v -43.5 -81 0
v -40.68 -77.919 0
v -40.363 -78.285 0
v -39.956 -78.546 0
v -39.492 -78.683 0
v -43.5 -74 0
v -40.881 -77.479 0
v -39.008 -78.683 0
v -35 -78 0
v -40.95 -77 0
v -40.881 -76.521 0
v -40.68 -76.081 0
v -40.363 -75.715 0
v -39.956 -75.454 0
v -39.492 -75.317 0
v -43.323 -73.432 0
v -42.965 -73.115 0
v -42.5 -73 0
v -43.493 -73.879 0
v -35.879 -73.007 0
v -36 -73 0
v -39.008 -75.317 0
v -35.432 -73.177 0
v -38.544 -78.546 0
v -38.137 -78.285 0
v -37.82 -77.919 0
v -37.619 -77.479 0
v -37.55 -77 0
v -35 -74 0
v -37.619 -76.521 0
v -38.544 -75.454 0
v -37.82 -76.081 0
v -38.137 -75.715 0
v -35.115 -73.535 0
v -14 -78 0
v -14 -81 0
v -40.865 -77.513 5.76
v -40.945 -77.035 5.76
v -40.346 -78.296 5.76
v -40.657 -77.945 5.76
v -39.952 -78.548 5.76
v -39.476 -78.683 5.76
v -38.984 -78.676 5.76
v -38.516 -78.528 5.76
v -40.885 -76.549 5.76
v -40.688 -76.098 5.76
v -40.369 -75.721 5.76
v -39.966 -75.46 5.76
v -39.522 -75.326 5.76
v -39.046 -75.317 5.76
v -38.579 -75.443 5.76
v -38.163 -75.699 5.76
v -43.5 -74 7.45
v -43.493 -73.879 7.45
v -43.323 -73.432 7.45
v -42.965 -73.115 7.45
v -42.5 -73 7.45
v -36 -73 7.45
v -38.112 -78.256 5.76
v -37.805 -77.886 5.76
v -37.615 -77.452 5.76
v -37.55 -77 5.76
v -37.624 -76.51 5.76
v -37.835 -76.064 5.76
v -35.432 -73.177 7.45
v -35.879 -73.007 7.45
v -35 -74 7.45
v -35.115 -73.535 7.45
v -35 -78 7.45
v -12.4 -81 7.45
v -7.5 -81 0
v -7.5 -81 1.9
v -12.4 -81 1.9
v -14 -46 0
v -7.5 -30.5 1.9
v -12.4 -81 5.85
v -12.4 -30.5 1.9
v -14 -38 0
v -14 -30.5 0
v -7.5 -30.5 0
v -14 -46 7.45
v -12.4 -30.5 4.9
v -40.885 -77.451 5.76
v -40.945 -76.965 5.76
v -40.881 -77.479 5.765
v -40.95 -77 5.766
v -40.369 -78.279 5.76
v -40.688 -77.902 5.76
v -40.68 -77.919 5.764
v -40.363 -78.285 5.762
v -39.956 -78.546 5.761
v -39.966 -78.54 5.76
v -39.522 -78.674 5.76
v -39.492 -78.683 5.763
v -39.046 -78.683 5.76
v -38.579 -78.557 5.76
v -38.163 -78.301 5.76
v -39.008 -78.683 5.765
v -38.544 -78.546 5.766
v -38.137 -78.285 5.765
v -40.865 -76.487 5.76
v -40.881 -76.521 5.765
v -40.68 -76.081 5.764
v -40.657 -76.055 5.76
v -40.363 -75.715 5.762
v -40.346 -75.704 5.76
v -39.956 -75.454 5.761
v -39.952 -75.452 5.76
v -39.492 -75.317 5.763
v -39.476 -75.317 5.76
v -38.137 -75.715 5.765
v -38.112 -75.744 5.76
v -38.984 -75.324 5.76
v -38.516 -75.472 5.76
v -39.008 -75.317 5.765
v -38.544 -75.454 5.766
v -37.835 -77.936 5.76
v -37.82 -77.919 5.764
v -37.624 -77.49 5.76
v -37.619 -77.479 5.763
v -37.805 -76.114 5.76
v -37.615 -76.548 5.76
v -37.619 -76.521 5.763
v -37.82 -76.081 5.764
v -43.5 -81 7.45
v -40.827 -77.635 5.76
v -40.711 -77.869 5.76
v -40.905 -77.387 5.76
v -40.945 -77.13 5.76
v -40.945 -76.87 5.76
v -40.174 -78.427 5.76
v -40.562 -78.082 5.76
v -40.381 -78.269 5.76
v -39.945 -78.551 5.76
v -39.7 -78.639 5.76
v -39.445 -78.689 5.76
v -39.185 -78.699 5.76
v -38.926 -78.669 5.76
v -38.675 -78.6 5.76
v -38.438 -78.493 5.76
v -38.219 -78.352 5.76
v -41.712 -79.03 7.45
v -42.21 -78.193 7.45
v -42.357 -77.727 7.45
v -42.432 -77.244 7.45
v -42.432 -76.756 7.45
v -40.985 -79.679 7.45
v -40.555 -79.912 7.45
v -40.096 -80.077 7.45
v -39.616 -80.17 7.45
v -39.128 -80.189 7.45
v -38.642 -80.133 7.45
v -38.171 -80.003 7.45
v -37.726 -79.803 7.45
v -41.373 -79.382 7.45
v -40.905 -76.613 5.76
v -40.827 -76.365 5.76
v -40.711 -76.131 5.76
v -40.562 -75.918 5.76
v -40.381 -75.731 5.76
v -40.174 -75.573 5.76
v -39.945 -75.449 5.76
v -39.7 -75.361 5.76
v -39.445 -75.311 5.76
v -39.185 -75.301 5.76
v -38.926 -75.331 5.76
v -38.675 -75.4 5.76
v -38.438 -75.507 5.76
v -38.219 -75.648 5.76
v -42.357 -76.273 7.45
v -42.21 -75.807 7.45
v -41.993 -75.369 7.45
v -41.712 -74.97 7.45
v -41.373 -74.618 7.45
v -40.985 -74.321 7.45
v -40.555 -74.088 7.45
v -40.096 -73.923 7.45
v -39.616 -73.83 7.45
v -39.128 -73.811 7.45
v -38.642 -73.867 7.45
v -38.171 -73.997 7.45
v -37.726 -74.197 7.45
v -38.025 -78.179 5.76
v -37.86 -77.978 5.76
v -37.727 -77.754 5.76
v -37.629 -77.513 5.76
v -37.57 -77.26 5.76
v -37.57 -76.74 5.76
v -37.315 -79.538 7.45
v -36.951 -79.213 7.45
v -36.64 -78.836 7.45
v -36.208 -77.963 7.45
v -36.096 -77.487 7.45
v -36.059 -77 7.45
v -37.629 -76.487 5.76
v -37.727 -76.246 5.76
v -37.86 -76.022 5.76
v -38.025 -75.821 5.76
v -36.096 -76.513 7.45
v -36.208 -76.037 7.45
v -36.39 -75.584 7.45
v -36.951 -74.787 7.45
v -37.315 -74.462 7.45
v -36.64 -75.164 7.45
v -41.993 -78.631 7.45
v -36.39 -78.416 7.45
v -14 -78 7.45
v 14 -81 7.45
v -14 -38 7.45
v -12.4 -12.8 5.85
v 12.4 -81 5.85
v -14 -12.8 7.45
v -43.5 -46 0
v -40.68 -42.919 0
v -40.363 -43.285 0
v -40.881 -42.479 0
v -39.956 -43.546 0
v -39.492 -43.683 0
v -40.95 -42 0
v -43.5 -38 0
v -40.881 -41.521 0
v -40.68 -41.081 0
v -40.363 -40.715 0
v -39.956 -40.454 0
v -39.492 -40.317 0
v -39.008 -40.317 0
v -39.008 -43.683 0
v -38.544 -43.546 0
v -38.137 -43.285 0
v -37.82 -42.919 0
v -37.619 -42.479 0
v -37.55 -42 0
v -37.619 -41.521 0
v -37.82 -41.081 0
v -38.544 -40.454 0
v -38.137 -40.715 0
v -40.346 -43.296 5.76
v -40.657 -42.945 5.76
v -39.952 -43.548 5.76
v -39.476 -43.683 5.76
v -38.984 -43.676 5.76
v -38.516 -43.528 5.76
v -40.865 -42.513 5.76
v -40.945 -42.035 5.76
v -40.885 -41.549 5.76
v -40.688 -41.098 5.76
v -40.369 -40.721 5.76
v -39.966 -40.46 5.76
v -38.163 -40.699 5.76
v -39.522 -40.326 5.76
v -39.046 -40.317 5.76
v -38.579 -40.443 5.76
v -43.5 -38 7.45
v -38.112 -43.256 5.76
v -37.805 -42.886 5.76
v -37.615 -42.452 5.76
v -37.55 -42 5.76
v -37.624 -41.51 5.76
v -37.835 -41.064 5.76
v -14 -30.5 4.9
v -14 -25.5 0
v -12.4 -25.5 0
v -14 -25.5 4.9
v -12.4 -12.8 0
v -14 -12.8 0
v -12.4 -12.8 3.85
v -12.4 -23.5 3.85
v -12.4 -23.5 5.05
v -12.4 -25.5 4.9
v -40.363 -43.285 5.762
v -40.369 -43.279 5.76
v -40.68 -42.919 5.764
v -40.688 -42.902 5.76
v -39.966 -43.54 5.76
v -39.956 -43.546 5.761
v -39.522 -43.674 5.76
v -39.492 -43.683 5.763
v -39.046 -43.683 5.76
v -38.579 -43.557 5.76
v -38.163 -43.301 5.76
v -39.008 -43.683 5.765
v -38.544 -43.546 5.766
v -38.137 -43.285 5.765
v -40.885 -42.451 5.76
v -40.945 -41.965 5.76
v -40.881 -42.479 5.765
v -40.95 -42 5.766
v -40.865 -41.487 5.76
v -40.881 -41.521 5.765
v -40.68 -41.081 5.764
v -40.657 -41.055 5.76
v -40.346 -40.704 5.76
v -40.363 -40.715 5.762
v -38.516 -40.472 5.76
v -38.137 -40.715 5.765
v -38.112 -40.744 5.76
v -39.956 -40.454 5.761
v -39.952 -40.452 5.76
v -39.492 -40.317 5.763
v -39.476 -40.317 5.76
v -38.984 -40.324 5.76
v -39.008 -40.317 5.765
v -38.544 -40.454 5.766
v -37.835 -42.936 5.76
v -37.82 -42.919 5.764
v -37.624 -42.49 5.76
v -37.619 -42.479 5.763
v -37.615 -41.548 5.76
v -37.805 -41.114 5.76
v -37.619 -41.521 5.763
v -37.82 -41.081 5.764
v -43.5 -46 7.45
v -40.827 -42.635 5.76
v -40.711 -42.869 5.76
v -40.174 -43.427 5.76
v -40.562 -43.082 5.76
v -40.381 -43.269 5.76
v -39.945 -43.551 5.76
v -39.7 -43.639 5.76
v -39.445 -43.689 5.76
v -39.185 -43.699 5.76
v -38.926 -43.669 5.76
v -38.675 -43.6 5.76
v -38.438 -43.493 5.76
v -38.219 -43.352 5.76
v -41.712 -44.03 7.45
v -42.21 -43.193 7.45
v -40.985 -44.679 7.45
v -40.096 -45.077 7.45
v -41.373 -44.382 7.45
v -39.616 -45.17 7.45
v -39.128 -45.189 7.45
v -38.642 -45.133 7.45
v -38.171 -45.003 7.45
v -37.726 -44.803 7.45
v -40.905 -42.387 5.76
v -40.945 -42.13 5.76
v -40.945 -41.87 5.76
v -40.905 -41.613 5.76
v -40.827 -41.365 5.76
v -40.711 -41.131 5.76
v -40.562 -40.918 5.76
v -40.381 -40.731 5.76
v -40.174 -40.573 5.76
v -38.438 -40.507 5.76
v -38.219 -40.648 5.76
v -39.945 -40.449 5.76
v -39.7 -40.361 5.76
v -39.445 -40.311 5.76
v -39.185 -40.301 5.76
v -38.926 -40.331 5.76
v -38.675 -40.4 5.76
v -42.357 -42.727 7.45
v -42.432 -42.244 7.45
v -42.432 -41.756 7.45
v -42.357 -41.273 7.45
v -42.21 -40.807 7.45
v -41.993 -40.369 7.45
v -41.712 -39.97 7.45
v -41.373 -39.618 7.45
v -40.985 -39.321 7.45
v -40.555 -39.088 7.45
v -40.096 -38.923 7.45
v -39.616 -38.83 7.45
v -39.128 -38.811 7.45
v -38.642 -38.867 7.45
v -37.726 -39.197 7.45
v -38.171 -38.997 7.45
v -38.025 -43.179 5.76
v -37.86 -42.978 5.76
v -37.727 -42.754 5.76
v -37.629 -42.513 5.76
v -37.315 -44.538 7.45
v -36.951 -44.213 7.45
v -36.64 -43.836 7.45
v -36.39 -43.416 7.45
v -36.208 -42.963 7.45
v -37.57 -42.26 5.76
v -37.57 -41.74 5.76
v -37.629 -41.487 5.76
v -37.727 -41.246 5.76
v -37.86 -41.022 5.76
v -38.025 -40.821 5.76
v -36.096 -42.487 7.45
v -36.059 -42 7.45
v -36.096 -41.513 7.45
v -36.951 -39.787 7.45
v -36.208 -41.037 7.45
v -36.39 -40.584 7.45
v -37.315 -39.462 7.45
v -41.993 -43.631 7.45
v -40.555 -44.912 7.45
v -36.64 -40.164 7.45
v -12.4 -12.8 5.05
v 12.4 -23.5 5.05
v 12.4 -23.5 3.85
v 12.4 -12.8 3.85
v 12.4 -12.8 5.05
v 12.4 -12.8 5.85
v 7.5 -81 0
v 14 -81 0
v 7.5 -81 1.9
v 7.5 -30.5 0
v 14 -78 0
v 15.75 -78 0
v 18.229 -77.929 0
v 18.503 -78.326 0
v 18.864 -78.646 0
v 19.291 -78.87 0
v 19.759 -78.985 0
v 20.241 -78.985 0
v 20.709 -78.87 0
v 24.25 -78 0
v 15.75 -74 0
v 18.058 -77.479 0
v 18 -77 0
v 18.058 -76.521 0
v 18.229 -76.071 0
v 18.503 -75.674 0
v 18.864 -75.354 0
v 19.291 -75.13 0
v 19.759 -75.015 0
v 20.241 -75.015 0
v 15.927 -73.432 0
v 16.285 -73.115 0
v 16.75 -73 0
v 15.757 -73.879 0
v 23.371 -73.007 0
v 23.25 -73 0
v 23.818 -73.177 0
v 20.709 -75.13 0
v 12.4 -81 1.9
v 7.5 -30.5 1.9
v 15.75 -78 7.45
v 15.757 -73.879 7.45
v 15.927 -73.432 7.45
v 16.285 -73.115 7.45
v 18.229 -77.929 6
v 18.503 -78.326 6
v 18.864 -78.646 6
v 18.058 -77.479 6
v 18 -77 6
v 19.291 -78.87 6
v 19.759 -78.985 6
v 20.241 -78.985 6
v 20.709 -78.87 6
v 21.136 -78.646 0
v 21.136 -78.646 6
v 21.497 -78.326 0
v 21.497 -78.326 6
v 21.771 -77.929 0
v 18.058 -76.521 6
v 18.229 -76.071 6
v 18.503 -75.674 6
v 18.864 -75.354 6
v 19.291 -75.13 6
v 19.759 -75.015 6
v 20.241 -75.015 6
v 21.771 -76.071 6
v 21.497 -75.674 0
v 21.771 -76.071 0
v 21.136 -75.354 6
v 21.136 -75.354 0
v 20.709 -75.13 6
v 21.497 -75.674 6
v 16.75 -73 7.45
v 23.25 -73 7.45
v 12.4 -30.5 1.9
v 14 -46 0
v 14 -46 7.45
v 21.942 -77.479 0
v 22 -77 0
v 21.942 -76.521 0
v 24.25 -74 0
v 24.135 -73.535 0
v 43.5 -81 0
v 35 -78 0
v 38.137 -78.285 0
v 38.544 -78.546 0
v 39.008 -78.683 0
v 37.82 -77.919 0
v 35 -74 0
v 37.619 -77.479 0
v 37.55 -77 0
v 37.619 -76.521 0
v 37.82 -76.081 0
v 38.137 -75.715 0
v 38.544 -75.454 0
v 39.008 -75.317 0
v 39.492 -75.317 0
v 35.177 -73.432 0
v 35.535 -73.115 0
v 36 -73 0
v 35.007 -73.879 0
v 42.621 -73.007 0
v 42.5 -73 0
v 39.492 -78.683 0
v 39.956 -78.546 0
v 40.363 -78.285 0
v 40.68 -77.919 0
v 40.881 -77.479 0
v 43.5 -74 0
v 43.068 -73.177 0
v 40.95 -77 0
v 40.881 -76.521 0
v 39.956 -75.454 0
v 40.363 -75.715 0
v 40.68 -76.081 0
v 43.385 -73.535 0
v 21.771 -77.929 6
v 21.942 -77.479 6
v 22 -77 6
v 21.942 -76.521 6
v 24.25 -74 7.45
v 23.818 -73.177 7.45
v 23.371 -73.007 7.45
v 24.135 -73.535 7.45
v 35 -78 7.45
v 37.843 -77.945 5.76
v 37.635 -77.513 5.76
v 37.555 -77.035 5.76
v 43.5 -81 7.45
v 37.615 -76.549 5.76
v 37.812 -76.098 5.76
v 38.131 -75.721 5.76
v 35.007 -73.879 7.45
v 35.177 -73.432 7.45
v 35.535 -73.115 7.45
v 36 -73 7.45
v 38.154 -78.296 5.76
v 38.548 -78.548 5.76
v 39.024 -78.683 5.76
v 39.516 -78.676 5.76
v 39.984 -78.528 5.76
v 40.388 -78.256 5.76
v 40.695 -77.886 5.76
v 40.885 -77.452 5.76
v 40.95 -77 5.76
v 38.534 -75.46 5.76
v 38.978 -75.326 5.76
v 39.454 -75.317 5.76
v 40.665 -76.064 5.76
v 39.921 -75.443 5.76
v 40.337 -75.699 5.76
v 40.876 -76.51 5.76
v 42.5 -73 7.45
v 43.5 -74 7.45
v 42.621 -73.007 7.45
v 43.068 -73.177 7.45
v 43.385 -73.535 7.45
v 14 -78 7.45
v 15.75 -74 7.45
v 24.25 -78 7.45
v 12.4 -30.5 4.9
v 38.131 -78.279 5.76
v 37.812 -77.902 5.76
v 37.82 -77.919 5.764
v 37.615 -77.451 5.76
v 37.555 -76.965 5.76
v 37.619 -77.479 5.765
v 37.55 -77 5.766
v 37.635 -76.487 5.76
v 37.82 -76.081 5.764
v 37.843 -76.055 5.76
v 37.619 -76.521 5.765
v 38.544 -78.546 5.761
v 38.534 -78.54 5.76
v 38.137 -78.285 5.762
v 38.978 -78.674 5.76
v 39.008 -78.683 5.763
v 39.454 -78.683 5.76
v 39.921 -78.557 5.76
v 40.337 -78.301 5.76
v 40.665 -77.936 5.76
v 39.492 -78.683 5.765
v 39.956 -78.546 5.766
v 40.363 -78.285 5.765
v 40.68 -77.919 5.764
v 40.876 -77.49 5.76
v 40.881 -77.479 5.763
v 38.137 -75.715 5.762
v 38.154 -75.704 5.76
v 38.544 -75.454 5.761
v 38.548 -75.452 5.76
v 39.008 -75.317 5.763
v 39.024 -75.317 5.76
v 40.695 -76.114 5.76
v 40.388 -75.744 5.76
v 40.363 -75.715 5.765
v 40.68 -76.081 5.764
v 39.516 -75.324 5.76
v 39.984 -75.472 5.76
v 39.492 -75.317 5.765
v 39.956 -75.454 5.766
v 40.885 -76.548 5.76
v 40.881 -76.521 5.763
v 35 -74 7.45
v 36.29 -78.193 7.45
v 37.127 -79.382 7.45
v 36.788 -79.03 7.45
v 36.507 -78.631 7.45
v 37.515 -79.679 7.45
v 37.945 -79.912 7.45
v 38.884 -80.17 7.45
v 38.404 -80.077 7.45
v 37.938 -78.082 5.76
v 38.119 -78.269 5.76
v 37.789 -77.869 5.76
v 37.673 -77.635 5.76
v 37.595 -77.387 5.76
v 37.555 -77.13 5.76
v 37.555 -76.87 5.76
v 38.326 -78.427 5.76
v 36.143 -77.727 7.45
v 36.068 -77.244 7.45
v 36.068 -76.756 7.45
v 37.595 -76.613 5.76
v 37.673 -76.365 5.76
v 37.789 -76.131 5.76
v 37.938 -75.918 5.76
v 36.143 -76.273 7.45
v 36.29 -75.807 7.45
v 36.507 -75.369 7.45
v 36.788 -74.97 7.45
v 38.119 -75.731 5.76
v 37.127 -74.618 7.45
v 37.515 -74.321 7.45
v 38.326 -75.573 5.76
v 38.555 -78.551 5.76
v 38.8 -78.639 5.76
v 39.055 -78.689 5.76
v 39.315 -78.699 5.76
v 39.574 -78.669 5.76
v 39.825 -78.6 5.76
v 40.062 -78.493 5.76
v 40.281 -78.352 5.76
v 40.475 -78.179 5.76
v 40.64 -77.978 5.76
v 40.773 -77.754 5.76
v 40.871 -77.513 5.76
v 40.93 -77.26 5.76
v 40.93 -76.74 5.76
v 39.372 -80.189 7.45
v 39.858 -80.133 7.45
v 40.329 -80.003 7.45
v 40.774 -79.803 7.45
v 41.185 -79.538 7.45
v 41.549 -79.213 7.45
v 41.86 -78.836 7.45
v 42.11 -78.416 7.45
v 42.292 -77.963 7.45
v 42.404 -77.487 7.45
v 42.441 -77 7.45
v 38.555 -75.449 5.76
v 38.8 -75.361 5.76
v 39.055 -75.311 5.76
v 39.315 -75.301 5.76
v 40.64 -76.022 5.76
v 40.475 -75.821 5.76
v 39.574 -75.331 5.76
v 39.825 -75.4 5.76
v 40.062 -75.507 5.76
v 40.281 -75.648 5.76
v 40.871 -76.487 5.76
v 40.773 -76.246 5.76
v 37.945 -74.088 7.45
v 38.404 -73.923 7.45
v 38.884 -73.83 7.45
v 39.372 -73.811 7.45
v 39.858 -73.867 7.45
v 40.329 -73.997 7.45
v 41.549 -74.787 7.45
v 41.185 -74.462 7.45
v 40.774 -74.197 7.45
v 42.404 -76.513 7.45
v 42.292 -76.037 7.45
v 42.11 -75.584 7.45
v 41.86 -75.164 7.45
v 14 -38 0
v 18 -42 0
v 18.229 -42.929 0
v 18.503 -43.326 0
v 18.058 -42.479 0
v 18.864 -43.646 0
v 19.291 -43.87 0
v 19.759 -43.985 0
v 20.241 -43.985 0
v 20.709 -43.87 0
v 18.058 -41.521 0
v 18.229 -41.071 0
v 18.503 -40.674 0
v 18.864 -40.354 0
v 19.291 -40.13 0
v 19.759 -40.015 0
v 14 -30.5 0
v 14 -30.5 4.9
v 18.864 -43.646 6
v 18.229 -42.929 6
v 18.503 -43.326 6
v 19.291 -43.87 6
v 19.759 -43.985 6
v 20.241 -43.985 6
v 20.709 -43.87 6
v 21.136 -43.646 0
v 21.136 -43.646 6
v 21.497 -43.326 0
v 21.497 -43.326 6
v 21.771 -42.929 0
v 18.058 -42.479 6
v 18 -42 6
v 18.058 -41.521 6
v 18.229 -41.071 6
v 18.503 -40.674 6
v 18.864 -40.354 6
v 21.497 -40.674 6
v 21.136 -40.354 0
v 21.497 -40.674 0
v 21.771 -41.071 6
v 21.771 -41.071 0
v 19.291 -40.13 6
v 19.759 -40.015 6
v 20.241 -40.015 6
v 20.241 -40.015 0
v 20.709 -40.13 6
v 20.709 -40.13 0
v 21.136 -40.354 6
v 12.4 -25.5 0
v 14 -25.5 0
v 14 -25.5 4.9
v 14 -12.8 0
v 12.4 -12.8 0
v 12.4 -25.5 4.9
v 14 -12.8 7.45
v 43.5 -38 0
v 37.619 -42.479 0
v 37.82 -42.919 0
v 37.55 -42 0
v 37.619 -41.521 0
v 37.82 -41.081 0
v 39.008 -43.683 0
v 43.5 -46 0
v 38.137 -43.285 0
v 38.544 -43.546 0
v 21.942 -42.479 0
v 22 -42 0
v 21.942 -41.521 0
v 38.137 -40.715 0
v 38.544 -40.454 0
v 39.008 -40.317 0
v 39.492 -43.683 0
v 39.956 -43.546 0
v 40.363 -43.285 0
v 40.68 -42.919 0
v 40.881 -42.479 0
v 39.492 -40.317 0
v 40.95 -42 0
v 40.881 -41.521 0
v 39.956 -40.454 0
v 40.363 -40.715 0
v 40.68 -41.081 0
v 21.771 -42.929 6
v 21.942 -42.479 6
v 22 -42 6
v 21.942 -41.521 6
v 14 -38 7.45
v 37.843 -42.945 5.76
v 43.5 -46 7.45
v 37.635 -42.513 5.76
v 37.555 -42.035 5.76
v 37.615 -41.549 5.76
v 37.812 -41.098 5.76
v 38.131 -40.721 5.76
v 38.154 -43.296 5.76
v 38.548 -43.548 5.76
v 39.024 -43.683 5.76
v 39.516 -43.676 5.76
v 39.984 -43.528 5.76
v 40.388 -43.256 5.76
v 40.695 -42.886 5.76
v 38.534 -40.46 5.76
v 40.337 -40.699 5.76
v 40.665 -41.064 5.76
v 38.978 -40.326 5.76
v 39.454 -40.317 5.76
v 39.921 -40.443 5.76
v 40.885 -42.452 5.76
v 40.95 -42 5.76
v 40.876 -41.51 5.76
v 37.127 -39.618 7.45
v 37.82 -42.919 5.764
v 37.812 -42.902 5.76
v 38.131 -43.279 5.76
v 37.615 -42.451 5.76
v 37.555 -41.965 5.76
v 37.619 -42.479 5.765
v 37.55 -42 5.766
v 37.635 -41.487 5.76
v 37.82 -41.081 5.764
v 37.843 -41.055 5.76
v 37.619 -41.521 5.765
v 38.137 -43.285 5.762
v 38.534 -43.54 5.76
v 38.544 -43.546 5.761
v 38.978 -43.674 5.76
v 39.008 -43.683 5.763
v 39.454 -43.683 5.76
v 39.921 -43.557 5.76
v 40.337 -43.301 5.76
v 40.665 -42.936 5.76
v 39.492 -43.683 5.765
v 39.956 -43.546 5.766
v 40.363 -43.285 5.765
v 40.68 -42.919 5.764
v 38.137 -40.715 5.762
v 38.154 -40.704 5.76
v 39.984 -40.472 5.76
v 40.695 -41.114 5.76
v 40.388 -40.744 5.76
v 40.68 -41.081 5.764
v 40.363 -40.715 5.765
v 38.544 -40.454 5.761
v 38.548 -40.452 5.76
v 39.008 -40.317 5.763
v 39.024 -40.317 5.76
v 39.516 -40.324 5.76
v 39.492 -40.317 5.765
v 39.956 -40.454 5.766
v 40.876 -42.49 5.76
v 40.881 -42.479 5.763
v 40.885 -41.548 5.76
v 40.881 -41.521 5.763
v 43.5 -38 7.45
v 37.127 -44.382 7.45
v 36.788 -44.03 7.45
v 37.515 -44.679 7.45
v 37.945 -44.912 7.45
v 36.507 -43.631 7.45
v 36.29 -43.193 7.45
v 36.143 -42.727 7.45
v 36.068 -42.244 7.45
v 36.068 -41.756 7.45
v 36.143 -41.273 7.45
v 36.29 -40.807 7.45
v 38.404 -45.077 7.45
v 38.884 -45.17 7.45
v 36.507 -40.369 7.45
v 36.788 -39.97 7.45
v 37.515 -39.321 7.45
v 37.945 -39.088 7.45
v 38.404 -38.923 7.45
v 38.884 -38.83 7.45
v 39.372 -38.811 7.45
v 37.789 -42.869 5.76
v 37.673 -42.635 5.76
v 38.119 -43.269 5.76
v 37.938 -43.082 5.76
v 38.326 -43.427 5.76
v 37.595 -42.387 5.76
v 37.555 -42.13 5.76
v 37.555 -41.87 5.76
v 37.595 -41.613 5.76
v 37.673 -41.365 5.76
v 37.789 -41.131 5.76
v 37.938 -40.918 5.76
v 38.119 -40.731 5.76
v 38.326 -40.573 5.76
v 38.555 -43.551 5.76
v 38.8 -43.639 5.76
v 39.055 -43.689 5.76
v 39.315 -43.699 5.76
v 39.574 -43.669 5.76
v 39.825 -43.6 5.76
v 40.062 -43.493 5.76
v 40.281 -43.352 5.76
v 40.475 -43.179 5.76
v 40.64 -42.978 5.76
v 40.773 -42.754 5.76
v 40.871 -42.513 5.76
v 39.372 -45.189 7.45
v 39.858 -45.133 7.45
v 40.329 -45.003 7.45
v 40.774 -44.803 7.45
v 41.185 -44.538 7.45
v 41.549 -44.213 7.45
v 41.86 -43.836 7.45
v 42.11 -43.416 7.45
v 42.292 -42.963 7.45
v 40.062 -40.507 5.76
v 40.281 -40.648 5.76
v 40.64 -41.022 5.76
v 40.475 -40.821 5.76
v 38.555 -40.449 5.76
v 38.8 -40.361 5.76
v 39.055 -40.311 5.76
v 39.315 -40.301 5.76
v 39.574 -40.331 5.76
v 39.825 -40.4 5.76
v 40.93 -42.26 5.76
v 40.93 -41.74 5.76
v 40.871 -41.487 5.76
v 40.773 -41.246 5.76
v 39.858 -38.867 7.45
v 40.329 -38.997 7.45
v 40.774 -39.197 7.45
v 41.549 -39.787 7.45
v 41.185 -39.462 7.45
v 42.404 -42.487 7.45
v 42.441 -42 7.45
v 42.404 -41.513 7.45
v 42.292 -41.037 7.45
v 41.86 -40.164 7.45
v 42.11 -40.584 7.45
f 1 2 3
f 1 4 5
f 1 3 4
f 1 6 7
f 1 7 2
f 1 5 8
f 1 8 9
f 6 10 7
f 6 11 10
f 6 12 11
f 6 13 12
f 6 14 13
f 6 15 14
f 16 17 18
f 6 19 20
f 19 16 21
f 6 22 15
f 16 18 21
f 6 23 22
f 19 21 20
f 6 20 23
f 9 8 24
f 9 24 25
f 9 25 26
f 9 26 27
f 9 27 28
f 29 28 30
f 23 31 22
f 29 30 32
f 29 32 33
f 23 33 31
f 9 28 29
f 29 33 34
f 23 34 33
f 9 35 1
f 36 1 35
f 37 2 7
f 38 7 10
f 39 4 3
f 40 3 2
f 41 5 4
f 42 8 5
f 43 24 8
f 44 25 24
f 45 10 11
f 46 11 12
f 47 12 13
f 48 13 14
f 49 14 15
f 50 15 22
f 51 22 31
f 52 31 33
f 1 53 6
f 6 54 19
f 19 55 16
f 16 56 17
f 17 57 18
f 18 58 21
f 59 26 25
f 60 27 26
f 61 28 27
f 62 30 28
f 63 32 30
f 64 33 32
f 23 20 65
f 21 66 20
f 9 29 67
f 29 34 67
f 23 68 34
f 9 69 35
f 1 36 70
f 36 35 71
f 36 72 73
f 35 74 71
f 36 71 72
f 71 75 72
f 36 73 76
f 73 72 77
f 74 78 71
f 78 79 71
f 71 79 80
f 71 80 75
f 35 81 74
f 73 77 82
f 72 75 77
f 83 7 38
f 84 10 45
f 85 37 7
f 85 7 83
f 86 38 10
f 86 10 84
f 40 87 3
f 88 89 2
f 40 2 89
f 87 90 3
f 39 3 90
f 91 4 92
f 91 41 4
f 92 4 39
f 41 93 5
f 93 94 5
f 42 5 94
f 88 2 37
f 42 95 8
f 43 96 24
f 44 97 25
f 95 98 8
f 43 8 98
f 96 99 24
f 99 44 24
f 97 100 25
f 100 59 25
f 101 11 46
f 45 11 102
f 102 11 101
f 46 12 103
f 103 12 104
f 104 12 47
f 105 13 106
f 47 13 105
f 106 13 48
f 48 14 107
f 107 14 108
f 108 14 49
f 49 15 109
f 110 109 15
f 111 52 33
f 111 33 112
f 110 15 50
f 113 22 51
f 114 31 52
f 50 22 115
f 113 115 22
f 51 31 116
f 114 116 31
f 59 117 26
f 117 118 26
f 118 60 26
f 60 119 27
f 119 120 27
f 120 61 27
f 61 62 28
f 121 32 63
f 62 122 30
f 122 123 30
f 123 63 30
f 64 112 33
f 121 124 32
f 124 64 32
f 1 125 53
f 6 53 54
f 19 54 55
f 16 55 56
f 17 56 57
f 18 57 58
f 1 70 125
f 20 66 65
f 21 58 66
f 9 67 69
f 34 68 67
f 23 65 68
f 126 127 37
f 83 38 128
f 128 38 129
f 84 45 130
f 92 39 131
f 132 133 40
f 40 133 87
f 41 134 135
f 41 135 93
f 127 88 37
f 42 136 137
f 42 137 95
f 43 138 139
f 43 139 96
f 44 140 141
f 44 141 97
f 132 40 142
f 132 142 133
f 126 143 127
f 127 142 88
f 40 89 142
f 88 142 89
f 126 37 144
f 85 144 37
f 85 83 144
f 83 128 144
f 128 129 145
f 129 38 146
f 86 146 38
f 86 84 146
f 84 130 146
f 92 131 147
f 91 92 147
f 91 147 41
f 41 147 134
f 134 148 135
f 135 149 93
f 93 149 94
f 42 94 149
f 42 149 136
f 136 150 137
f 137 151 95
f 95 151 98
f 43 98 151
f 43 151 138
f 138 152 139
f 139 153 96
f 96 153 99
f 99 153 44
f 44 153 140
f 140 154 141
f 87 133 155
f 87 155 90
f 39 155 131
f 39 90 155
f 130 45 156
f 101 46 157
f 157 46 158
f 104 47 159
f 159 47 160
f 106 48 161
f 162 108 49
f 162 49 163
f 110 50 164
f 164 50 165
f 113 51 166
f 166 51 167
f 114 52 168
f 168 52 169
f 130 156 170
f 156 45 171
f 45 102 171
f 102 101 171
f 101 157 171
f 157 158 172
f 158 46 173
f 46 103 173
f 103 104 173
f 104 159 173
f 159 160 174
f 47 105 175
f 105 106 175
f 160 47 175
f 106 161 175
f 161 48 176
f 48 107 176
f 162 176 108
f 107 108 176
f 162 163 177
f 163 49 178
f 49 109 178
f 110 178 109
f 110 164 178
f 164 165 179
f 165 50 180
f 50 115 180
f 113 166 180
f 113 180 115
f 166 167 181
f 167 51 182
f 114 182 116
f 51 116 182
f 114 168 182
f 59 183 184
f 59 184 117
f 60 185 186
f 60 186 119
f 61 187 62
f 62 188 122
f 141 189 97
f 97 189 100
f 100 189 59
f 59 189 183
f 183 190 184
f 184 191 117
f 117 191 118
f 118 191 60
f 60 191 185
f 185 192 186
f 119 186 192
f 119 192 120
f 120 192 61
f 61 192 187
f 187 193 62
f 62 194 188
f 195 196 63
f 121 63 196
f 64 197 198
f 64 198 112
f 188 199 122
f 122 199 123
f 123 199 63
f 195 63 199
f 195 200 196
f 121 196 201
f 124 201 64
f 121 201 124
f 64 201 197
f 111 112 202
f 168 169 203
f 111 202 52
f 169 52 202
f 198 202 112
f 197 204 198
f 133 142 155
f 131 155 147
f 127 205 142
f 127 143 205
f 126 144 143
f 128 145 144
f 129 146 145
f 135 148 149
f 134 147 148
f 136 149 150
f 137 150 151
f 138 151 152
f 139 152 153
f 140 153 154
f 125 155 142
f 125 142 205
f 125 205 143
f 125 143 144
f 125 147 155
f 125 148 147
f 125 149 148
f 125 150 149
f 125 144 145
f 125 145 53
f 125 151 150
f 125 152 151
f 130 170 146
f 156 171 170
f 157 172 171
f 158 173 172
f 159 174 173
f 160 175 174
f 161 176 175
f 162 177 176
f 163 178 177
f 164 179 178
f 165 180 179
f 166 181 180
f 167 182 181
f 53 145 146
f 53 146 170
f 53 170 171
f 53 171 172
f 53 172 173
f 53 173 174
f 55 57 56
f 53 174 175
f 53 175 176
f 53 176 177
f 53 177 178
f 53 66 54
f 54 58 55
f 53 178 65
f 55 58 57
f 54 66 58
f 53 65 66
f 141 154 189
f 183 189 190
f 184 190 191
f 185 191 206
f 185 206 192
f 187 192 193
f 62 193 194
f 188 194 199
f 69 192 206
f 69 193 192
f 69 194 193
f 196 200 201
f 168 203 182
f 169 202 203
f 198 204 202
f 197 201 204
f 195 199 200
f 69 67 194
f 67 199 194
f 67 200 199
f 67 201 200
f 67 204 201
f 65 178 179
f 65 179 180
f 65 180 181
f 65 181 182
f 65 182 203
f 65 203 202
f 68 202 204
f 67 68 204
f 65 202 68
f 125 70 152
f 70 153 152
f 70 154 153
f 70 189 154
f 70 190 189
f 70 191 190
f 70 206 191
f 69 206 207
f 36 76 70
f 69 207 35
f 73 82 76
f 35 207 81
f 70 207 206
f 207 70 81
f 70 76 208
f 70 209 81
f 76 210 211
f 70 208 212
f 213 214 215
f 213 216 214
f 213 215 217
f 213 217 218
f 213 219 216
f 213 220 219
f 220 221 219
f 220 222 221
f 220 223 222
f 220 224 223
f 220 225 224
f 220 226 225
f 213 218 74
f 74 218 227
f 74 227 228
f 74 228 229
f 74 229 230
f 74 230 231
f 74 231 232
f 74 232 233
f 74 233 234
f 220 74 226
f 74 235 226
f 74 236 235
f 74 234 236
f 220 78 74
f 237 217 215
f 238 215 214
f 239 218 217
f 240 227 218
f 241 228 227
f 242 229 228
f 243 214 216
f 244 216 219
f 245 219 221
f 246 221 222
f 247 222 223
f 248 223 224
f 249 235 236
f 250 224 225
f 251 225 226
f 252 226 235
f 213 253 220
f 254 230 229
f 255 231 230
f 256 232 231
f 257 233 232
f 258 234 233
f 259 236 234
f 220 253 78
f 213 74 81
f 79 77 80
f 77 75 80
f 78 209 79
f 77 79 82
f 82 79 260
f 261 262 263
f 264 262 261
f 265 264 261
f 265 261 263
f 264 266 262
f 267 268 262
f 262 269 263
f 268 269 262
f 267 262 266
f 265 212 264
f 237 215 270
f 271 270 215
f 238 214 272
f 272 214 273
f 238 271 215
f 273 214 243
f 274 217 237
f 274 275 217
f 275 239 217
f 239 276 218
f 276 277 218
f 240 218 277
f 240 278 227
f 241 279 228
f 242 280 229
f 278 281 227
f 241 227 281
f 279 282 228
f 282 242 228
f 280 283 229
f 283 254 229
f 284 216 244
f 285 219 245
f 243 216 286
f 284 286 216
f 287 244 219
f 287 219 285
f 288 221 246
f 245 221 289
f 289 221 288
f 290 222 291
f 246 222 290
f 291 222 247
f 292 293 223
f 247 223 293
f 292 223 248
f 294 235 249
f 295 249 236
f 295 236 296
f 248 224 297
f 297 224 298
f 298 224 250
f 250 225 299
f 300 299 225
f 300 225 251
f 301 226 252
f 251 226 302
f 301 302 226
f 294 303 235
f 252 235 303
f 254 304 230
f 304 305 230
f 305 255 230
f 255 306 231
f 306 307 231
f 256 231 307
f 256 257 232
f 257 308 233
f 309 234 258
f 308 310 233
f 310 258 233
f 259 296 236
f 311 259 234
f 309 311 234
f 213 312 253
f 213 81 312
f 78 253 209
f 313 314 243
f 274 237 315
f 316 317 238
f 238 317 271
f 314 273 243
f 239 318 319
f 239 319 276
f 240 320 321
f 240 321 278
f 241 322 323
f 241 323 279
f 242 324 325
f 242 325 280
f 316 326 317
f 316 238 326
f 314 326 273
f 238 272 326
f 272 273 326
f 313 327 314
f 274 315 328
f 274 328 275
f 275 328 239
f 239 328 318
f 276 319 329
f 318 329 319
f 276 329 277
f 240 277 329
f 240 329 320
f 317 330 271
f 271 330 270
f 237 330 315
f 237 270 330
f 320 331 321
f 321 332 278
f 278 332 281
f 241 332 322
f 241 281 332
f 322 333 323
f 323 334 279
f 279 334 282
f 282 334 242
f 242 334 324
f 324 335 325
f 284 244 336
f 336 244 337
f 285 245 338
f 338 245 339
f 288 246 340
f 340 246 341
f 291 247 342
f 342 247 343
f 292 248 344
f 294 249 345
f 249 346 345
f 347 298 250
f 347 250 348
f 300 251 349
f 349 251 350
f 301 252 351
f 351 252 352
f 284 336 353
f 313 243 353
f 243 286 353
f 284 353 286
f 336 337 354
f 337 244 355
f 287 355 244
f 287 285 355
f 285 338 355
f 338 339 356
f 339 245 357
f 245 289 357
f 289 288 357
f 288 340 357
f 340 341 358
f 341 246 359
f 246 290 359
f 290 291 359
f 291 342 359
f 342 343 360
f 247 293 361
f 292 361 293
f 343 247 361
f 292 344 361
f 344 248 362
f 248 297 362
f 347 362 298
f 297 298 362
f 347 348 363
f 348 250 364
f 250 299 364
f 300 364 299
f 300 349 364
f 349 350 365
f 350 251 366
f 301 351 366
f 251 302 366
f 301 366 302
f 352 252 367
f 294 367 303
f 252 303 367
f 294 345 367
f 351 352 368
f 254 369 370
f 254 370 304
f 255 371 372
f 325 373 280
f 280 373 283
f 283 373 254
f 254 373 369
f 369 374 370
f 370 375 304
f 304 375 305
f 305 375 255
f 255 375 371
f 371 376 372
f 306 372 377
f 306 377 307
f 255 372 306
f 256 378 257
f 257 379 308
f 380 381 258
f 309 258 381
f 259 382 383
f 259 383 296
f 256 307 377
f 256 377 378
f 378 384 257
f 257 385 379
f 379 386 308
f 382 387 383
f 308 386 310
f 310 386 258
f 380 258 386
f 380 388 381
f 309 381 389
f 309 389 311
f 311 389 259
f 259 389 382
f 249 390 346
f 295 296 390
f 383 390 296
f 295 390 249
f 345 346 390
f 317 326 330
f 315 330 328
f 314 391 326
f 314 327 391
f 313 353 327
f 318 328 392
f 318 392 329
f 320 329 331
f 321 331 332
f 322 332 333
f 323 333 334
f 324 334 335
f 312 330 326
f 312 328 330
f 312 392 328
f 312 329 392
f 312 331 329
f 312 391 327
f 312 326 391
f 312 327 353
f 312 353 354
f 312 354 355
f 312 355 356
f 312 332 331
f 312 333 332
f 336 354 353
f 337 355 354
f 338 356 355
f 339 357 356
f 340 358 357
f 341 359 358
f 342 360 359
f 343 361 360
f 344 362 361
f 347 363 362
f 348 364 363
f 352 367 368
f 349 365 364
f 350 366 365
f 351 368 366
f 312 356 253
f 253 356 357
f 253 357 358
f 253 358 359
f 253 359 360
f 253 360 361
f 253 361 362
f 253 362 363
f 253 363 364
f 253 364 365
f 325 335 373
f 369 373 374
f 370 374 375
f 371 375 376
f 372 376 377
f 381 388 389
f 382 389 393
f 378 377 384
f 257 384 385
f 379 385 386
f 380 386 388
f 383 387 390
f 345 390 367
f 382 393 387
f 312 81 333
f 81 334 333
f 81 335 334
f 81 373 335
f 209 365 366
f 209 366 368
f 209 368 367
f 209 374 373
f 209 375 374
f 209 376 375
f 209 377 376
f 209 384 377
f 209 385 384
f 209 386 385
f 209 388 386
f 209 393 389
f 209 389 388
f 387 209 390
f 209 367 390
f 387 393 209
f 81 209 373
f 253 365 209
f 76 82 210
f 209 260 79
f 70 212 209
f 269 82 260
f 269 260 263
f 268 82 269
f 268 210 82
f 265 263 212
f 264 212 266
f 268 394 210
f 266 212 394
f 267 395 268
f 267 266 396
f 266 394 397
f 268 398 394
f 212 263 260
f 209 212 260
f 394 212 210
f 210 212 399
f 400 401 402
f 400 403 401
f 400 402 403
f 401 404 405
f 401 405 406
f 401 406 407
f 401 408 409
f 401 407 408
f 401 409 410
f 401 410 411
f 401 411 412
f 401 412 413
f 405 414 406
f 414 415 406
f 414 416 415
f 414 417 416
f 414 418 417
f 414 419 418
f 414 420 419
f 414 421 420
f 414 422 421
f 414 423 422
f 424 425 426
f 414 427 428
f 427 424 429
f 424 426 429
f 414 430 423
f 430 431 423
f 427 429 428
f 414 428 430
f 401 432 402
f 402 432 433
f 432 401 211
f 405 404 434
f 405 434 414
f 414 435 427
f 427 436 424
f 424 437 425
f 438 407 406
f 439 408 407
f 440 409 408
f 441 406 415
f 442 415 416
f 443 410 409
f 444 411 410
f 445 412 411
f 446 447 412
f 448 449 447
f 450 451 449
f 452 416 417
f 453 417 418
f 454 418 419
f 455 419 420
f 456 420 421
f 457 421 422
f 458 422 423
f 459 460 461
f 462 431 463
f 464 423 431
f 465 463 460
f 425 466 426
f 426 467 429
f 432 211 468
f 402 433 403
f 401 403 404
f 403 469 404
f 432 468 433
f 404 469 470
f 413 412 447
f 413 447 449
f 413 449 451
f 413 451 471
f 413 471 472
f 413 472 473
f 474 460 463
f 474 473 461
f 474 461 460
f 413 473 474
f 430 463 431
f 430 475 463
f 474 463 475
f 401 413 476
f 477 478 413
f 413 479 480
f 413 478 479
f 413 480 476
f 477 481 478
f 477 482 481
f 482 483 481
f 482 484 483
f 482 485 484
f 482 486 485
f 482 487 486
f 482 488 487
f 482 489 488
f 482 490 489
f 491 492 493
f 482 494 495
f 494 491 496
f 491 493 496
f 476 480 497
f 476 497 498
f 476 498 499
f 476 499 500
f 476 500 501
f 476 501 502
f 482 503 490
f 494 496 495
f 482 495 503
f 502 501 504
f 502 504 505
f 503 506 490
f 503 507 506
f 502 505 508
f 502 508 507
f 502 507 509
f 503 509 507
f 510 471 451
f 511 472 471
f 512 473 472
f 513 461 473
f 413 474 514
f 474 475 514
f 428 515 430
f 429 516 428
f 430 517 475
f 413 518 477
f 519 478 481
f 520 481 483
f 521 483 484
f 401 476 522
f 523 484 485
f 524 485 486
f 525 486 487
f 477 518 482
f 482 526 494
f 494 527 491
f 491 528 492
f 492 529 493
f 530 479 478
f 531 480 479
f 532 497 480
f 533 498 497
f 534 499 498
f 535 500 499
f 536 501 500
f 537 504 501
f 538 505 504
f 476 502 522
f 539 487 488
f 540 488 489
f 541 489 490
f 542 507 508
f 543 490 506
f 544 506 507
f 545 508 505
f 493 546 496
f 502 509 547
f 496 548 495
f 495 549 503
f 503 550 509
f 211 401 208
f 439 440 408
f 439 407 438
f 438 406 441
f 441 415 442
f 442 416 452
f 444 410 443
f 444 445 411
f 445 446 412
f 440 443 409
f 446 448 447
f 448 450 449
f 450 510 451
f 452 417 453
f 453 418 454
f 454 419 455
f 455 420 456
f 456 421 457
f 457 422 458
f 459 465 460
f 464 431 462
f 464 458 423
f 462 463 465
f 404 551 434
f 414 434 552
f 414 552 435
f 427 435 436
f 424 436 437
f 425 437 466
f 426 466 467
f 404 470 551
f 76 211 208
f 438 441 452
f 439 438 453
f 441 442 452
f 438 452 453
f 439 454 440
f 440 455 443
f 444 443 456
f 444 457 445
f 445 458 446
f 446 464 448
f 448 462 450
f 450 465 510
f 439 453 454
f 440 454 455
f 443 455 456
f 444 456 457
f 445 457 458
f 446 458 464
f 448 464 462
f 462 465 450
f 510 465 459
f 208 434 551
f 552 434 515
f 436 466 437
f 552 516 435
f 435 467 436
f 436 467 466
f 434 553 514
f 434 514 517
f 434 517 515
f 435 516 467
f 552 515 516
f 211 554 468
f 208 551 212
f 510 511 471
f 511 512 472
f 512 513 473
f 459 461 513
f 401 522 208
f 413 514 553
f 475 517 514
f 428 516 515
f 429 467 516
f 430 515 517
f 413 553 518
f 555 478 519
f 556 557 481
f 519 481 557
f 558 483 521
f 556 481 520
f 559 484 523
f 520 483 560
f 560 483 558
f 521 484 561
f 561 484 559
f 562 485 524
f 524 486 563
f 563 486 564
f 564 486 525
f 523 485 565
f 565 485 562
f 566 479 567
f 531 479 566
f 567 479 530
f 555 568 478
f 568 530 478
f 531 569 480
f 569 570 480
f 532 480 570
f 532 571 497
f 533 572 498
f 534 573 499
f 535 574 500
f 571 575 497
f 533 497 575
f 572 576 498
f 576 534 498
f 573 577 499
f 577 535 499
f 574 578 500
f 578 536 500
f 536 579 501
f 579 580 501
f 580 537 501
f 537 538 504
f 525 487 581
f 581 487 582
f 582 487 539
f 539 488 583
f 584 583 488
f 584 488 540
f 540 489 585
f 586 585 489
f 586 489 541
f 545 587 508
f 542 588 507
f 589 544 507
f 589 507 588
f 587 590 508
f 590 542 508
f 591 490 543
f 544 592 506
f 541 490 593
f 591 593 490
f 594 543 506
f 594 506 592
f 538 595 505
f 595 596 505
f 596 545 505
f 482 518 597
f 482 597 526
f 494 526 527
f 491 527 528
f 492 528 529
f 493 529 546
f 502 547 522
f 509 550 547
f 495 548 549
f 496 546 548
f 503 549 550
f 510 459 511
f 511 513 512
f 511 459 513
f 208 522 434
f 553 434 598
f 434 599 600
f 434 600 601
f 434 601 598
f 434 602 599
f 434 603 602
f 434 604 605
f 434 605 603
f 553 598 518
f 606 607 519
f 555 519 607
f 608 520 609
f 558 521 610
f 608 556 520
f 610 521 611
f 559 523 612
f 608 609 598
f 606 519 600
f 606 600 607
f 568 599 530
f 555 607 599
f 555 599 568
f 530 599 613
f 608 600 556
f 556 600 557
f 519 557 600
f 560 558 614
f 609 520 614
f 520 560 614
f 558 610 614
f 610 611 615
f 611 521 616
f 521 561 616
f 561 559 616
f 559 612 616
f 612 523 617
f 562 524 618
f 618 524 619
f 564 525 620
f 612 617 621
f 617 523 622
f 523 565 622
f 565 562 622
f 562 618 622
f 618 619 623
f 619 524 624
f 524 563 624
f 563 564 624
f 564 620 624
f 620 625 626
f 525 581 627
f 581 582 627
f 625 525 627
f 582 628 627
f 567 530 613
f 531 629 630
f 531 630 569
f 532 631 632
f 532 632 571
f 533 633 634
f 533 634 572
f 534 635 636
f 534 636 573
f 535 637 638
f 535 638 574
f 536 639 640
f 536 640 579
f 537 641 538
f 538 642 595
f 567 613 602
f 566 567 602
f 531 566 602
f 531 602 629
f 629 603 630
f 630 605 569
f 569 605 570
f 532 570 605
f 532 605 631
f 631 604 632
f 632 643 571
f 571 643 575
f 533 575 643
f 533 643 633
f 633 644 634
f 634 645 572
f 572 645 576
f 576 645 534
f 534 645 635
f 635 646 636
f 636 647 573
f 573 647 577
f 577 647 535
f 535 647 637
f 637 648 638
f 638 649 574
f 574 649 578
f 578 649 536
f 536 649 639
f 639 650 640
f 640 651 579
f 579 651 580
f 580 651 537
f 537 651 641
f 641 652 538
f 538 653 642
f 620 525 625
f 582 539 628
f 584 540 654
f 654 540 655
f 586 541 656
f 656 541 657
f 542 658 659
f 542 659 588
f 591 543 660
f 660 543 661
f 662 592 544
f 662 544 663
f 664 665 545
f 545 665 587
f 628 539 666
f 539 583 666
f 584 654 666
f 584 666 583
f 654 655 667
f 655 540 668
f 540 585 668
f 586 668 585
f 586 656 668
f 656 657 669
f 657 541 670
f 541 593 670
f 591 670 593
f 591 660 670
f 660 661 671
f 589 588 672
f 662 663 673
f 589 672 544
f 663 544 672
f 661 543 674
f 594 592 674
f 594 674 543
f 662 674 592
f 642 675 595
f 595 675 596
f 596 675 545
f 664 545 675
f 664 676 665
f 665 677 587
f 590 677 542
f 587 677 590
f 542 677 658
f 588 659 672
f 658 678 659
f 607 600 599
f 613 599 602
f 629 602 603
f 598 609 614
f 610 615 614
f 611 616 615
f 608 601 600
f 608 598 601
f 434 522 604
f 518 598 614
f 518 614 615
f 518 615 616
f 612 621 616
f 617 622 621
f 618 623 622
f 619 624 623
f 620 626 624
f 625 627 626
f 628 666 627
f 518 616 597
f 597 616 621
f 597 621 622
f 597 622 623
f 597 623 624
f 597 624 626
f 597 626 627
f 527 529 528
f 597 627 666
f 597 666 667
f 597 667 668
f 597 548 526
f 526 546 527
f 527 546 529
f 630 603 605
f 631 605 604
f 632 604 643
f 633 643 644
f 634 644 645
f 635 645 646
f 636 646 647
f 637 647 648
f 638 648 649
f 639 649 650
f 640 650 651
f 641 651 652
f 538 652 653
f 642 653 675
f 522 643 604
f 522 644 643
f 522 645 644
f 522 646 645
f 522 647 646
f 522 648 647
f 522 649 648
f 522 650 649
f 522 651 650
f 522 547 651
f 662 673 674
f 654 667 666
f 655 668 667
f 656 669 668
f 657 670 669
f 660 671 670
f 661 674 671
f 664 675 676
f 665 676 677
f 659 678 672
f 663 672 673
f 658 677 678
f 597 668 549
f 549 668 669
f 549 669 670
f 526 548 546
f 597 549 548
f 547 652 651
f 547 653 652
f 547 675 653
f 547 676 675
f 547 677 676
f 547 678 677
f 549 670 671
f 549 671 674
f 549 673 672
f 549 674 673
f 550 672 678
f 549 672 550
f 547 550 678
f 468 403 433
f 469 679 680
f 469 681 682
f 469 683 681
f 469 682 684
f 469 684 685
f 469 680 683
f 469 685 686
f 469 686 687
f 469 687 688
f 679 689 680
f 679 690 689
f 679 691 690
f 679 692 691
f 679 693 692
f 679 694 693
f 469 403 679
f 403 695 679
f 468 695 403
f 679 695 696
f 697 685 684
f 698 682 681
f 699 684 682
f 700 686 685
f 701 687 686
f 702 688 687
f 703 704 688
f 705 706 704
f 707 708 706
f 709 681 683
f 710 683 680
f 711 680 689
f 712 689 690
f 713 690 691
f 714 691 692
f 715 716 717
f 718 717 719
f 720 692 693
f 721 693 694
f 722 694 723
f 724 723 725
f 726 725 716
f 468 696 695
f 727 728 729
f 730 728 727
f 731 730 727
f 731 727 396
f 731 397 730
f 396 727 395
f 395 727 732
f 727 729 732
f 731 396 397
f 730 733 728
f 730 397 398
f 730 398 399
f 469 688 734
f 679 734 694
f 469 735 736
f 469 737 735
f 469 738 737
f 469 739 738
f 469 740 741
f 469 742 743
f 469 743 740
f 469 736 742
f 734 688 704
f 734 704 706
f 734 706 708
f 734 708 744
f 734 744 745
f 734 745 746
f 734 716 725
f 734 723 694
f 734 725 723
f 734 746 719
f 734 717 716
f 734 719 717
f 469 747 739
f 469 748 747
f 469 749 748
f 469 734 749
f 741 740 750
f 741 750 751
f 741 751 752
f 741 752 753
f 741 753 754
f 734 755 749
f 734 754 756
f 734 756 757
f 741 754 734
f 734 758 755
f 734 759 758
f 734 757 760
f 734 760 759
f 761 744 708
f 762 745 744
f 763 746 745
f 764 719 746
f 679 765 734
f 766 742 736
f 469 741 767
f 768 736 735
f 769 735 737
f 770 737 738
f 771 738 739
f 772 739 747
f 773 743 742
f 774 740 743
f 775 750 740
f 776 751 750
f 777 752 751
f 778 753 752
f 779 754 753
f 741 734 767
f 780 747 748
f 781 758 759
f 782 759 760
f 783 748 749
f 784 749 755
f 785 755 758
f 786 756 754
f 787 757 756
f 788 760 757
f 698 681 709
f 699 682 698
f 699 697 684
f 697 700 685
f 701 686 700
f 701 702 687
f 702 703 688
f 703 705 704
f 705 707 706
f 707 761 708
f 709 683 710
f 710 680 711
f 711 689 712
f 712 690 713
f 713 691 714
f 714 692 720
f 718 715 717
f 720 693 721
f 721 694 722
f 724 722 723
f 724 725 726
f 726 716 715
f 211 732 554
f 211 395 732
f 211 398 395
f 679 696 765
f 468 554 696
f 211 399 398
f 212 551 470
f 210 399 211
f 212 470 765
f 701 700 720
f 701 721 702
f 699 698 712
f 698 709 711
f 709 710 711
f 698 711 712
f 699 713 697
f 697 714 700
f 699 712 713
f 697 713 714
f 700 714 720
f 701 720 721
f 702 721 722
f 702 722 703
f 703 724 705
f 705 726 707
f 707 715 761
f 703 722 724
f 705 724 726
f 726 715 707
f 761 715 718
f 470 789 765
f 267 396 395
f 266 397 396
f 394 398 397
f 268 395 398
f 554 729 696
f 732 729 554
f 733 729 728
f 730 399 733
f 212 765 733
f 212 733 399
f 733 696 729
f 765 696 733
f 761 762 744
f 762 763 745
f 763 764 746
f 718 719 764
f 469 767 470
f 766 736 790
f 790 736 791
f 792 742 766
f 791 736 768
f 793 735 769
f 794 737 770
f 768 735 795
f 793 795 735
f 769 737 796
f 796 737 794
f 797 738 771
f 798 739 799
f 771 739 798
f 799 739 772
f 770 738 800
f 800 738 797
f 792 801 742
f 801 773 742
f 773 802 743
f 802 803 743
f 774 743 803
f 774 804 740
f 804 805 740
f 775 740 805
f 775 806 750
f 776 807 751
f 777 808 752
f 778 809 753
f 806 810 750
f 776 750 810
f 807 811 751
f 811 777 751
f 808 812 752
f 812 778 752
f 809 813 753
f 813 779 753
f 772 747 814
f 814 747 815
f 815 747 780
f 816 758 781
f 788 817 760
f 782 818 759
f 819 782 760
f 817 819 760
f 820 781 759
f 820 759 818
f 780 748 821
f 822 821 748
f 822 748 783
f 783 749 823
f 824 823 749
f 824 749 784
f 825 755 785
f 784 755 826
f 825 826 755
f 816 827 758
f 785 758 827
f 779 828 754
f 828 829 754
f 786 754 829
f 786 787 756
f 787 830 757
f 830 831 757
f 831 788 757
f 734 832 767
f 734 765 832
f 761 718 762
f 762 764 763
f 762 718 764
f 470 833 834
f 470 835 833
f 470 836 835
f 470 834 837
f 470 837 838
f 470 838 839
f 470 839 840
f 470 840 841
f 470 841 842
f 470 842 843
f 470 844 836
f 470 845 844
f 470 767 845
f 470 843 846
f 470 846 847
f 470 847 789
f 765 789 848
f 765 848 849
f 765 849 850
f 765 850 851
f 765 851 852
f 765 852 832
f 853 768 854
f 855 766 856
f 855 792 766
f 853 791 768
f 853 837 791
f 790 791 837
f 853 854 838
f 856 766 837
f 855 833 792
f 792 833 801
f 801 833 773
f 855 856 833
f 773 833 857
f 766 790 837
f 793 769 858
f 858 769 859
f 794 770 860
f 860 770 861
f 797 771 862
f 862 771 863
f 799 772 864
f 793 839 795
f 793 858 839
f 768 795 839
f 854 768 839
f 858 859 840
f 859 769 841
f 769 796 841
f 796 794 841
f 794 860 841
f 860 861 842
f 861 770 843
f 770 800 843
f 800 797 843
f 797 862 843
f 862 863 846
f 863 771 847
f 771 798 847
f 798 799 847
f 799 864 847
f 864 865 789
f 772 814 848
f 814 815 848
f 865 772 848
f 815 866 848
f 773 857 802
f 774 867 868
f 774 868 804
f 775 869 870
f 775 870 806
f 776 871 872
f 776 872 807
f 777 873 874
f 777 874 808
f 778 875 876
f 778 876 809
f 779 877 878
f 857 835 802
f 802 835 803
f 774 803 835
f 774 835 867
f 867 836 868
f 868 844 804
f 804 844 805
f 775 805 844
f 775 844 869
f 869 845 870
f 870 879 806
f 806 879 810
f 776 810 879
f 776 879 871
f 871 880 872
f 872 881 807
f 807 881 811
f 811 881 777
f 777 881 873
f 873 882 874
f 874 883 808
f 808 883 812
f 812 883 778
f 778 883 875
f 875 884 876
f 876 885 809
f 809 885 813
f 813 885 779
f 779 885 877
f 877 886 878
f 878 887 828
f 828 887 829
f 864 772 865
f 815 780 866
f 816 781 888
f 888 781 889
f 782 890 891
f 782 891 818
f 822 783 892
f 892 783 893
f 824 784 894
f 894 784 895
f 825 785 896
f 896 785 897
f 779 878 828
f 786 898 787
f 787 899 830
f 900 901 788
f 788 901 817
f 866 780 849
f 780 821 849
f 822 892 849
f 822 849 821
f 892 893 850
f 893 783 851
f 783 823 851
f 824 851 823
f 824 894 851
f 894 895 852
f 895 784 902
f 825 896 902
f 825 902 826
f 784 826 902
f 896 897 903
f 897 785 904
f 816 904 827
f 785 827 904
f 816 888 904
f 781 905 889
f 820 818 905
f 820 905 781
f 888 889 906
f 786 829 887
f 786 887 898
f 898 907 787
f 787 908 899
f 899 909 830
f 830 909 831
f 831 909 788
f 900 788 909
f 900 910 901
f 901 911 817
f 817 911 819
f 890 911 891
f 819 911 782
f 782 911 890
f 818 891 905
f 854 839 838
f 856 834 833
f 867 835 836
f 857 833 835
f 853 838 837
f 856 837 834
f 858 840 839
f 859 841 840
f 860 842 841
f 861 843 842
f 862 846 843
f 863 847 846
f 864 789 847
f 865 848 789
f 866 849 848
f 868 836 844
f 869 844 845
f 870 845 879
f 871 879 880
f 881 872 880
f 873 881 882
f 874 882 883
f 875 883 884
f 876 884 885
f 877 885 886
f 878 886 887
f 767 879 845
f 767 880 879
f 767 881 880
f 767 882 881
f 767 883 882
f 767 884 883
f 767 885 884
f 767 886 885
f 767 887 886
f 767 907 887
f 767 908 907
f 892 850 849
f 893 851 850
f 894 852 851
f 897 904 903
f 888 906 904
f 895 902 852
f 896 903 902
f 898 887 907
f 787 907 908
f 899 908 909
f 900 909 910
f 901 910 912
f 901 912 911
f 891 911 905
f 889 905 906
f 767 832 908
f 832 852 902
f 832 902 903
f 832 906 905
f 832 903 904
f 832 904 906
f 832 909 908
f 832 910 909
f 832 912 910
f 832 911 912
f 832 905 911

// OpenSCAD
// file: lib/lib.scad
// Shared helpers. Include AFTER params.scad (needs TOL, M3_* etc.).
$fa = 4; $fs = 0.5;

module rrect(size, r) {            // 2D rounded rectangle, centred
    r2 = min(r, min(size[0], size[1]) / 2 - 0.001);
    offset(r = r2) square([size[0] - 2 * r2, size[1] - 2 * r2], center = true);
}
module rbox(size, r, center_xy = true) {   // box with rounded vertical edges
    translate(center_xy ? [0, 0, 0] : [size[0] / 2, size[1] / 2, 0])
        linear_extrude(size[2]) rrect([size[0], size[1]], r);
}
module rbox_at(x0, x1, y0, y1, z0, z1, r = 0.01) {
    translate([(x0 + x1) / 2, (y0 + y1) / 2, z0]) rbox([x1 - x0, y1 - y0, z1 - z0], r);
}
module box_at(x0, x1, y0, y1, z0, z1) { translate([x0, y0, z0]) cube([x1 - x0, y1 - y0, z1 - z0]); }

module ring(ro, ri, h) { difference() { cylinder(r = ro, h = h); translate([0, 0, -1]) cylinder(r = ri, h = h + 2); } }
module ring_sector(ro, ri, h, a0, a1) {
    intersection() {
        ring(ro, ri, h);
        linear_extrude(h) polygon(concat([[0, 0]], [for (a = [a0 : (a1 - a0) / 24 : a1]) 2 * ro * [cos(a), sin(a)]]));
    }
}
// teardrop hole along an axis lying horizontal (axis = Y after rotation), printable w/o support
module teardrop2d(d) { union() { circle(d = d); rotate(45) square(d / 2); } }
// vertical heat-set insert hole, opening at z=0 going +z (depth l)
module insert_hole(l = M3_INSERT_L) { translate([0, 0, -EPS]) cylinder(d = M3_INSERT_D, h = l + EPS); }
module m3_clear(l) { translate([0, 0, -EPS]) cylinder(d = M3_CLEAR, h = l + 2 * EPS); }
module m3_csk(l) {  // countersunk clearance from z=0 upward, head at z=0 side
    translate([0, 0, -EPS]) { cylinder(d = M3_CLEAR, h = l + 2 * EPS); cylinder(d1 = 6.4, d2 = M3_CLEAR, h = 1.7); }
}
module card2d() { rrect([CARD_L, CARD_W], CARD_R); }
module card_at(cy, z) { translate([0, cy, z]) linear_extrude(CARD_T) card2d(); }

// ---- gears ----
function _inv(a) = tan(a) - a * PI_ / 180;           // involute function, a in deg
function _invpt(rb, r, ang0, s) = let(al = acos(rb / r), th = ang0 - s * (_inv(al) * 180 / PI_)) [r * cos(th), r * sin(th)];
module involute_gear2d(m, z, pa = 20, clearance = 0.05) {
    rp = m * z / 2; rb = rp * cos(pa); ra = rp + m - clearance; rf = rp - 1.25 * m;
    half = 90 / z + _inv(pa) * 180 / PI_;            // tooth half-angle at base (deg)
    n = 8;
    rs = [for (i = [0 : n]) max(rb, rf) + (ra - max(rb, rf)) * i / n];
    union() {
        circle(r = rf, $fn = z * 4);
        for (k = [0 : z - 1]) rotate(k * 360 / z) polygon(concat(
            [[rf * cos(-half), rf * sin(-half)]],
            [for (r = rs) let(p = _invpt(rb, r, half, 1)) [p[0], -p[1]]],
            [for (i = [n : -1 : 0]) _invpt(rb, rs[i], half, 1)],
            [[rf * cos(half), rf * sin(half)]]));
    }
}
// straight gear rack (2D in XY: teeth along +x, pointing -y, pitch line at y=0)
module gear_rack2d(m, len, back = 3) {
    p = PI_ * m; ad = m; de = 1.25 * m; t = tan(20);
    n = ceil(len / p) + 1;
    intersection() {
        union() {
            translate([0, de]) square([len, back]);
            for (i = [0 : n]) if (i * p - p / 4 - (p / 4 + de * t) >= 0 && i * p + de * t <= len) translate([i * p - p / 4, 0]) polygon([
                [-(p / 4 + de * t), de + 0.01], [p / 4 + de * t + 0.01, de + 0.01],
                [p / 4 - ad * t, -ad], [-(p / 4 - ad * t), -ad] ]);
        }
        translate([0, -ad - 1]) square([len, ad + de + back + 2]);
    }
}
// GT2 belt-tooth profile ring (teeth outward), 2D
module gt2_ring2d(n, r_land, ri) {
    union() {
        difference() { circle(r = r_land + 0.01, $fn = n * 2); circle(r = ri, $fn = n * 2); }
        for (k = [0 : n - 1]) rotate(k * 360 / n)
            translate([r_land, 0]) hull() { translate([-0.2, 0]) square([0.2, 1.0], center = true); translate([0.25, 0]) circle(r = 0.5, $fn = 12); }
    }
}
// main file
// Pusher guide: blade channel (front), carrier channel with lips (rear), roof under the
// hopper floor, wings to the loader-frame ledges, load-IR receiver cup.
// Print: upright (wing bottoms on bed); roof/floor are short bridges (<= 28 mm).
include <params.scad>
include <lib/lib.scad>
e = Z_EJECT;
GW_X = 14;  GW_IN = 12.4;
module pusher_guide() difference() {
    union() {
        box_at(-GW_X, GW_X, WING_B[0], HOP_Y_FRONT, e + 0.35, e + 1.95);                       // roof
        for (s = [-1, 1]) box_at(s > 0 ? GW_IN : -GW_X, s > 0 ? GW_X : -GW_IN, WING_B[0], HOP_Y_FRONT, WING_Z0, e + 1.95);
        box_at(-GW_X, GW_X, -23.5, HOP_Y_FRONT, e - 1.65, e - 0.45);                          // front blade floor
        for (s = [-1, 1]) box_at(s > 0 ? 7.5 : -GW_X, s > 0 ? GW_X : -7.5, WING_B[0], -28.5, WING_Z0, e - 3.6);  // lips
        for (w = [WING_F, WING_B], s = [-1, 1]) box_at(s > 0 ? GW_X - EPS : -43.5, s > 0 ? 43.5 : -GW_X + EPS, w[0], w[1], WING_Z0, WING_Z1);   // wings (outside the channel)
        for (p = concat(WING_FIX, SERVO_FIX)) translate([p[0], p[1], WING_Z0]) rbox([8.5, 8, WING_Z1 - WING_Z0], 1);
    }
    for (p = WING_FIX) translate([p[0], p[1], WING_Z1]) rotate([180, 0, 0]) m3_csk(WING_Z1 - WING_Z0);
    for (p = SERVO_FIX) translate([p[0], p[1], WING_Z0]) insert_hole();
    box_at(-GW_X - 1, GW_X + 1, FEED_Y - SHAFT_D / 2 - 1, FEED_Y + SHAFT_D / 2 + 1, WING_Z0 - 1, e - 0.6);   // feed-shaft pass
}
module pusher_guide_print() translate([0, 0, -WING_Z0]) pusher_guide();
pusher_guide_print();
